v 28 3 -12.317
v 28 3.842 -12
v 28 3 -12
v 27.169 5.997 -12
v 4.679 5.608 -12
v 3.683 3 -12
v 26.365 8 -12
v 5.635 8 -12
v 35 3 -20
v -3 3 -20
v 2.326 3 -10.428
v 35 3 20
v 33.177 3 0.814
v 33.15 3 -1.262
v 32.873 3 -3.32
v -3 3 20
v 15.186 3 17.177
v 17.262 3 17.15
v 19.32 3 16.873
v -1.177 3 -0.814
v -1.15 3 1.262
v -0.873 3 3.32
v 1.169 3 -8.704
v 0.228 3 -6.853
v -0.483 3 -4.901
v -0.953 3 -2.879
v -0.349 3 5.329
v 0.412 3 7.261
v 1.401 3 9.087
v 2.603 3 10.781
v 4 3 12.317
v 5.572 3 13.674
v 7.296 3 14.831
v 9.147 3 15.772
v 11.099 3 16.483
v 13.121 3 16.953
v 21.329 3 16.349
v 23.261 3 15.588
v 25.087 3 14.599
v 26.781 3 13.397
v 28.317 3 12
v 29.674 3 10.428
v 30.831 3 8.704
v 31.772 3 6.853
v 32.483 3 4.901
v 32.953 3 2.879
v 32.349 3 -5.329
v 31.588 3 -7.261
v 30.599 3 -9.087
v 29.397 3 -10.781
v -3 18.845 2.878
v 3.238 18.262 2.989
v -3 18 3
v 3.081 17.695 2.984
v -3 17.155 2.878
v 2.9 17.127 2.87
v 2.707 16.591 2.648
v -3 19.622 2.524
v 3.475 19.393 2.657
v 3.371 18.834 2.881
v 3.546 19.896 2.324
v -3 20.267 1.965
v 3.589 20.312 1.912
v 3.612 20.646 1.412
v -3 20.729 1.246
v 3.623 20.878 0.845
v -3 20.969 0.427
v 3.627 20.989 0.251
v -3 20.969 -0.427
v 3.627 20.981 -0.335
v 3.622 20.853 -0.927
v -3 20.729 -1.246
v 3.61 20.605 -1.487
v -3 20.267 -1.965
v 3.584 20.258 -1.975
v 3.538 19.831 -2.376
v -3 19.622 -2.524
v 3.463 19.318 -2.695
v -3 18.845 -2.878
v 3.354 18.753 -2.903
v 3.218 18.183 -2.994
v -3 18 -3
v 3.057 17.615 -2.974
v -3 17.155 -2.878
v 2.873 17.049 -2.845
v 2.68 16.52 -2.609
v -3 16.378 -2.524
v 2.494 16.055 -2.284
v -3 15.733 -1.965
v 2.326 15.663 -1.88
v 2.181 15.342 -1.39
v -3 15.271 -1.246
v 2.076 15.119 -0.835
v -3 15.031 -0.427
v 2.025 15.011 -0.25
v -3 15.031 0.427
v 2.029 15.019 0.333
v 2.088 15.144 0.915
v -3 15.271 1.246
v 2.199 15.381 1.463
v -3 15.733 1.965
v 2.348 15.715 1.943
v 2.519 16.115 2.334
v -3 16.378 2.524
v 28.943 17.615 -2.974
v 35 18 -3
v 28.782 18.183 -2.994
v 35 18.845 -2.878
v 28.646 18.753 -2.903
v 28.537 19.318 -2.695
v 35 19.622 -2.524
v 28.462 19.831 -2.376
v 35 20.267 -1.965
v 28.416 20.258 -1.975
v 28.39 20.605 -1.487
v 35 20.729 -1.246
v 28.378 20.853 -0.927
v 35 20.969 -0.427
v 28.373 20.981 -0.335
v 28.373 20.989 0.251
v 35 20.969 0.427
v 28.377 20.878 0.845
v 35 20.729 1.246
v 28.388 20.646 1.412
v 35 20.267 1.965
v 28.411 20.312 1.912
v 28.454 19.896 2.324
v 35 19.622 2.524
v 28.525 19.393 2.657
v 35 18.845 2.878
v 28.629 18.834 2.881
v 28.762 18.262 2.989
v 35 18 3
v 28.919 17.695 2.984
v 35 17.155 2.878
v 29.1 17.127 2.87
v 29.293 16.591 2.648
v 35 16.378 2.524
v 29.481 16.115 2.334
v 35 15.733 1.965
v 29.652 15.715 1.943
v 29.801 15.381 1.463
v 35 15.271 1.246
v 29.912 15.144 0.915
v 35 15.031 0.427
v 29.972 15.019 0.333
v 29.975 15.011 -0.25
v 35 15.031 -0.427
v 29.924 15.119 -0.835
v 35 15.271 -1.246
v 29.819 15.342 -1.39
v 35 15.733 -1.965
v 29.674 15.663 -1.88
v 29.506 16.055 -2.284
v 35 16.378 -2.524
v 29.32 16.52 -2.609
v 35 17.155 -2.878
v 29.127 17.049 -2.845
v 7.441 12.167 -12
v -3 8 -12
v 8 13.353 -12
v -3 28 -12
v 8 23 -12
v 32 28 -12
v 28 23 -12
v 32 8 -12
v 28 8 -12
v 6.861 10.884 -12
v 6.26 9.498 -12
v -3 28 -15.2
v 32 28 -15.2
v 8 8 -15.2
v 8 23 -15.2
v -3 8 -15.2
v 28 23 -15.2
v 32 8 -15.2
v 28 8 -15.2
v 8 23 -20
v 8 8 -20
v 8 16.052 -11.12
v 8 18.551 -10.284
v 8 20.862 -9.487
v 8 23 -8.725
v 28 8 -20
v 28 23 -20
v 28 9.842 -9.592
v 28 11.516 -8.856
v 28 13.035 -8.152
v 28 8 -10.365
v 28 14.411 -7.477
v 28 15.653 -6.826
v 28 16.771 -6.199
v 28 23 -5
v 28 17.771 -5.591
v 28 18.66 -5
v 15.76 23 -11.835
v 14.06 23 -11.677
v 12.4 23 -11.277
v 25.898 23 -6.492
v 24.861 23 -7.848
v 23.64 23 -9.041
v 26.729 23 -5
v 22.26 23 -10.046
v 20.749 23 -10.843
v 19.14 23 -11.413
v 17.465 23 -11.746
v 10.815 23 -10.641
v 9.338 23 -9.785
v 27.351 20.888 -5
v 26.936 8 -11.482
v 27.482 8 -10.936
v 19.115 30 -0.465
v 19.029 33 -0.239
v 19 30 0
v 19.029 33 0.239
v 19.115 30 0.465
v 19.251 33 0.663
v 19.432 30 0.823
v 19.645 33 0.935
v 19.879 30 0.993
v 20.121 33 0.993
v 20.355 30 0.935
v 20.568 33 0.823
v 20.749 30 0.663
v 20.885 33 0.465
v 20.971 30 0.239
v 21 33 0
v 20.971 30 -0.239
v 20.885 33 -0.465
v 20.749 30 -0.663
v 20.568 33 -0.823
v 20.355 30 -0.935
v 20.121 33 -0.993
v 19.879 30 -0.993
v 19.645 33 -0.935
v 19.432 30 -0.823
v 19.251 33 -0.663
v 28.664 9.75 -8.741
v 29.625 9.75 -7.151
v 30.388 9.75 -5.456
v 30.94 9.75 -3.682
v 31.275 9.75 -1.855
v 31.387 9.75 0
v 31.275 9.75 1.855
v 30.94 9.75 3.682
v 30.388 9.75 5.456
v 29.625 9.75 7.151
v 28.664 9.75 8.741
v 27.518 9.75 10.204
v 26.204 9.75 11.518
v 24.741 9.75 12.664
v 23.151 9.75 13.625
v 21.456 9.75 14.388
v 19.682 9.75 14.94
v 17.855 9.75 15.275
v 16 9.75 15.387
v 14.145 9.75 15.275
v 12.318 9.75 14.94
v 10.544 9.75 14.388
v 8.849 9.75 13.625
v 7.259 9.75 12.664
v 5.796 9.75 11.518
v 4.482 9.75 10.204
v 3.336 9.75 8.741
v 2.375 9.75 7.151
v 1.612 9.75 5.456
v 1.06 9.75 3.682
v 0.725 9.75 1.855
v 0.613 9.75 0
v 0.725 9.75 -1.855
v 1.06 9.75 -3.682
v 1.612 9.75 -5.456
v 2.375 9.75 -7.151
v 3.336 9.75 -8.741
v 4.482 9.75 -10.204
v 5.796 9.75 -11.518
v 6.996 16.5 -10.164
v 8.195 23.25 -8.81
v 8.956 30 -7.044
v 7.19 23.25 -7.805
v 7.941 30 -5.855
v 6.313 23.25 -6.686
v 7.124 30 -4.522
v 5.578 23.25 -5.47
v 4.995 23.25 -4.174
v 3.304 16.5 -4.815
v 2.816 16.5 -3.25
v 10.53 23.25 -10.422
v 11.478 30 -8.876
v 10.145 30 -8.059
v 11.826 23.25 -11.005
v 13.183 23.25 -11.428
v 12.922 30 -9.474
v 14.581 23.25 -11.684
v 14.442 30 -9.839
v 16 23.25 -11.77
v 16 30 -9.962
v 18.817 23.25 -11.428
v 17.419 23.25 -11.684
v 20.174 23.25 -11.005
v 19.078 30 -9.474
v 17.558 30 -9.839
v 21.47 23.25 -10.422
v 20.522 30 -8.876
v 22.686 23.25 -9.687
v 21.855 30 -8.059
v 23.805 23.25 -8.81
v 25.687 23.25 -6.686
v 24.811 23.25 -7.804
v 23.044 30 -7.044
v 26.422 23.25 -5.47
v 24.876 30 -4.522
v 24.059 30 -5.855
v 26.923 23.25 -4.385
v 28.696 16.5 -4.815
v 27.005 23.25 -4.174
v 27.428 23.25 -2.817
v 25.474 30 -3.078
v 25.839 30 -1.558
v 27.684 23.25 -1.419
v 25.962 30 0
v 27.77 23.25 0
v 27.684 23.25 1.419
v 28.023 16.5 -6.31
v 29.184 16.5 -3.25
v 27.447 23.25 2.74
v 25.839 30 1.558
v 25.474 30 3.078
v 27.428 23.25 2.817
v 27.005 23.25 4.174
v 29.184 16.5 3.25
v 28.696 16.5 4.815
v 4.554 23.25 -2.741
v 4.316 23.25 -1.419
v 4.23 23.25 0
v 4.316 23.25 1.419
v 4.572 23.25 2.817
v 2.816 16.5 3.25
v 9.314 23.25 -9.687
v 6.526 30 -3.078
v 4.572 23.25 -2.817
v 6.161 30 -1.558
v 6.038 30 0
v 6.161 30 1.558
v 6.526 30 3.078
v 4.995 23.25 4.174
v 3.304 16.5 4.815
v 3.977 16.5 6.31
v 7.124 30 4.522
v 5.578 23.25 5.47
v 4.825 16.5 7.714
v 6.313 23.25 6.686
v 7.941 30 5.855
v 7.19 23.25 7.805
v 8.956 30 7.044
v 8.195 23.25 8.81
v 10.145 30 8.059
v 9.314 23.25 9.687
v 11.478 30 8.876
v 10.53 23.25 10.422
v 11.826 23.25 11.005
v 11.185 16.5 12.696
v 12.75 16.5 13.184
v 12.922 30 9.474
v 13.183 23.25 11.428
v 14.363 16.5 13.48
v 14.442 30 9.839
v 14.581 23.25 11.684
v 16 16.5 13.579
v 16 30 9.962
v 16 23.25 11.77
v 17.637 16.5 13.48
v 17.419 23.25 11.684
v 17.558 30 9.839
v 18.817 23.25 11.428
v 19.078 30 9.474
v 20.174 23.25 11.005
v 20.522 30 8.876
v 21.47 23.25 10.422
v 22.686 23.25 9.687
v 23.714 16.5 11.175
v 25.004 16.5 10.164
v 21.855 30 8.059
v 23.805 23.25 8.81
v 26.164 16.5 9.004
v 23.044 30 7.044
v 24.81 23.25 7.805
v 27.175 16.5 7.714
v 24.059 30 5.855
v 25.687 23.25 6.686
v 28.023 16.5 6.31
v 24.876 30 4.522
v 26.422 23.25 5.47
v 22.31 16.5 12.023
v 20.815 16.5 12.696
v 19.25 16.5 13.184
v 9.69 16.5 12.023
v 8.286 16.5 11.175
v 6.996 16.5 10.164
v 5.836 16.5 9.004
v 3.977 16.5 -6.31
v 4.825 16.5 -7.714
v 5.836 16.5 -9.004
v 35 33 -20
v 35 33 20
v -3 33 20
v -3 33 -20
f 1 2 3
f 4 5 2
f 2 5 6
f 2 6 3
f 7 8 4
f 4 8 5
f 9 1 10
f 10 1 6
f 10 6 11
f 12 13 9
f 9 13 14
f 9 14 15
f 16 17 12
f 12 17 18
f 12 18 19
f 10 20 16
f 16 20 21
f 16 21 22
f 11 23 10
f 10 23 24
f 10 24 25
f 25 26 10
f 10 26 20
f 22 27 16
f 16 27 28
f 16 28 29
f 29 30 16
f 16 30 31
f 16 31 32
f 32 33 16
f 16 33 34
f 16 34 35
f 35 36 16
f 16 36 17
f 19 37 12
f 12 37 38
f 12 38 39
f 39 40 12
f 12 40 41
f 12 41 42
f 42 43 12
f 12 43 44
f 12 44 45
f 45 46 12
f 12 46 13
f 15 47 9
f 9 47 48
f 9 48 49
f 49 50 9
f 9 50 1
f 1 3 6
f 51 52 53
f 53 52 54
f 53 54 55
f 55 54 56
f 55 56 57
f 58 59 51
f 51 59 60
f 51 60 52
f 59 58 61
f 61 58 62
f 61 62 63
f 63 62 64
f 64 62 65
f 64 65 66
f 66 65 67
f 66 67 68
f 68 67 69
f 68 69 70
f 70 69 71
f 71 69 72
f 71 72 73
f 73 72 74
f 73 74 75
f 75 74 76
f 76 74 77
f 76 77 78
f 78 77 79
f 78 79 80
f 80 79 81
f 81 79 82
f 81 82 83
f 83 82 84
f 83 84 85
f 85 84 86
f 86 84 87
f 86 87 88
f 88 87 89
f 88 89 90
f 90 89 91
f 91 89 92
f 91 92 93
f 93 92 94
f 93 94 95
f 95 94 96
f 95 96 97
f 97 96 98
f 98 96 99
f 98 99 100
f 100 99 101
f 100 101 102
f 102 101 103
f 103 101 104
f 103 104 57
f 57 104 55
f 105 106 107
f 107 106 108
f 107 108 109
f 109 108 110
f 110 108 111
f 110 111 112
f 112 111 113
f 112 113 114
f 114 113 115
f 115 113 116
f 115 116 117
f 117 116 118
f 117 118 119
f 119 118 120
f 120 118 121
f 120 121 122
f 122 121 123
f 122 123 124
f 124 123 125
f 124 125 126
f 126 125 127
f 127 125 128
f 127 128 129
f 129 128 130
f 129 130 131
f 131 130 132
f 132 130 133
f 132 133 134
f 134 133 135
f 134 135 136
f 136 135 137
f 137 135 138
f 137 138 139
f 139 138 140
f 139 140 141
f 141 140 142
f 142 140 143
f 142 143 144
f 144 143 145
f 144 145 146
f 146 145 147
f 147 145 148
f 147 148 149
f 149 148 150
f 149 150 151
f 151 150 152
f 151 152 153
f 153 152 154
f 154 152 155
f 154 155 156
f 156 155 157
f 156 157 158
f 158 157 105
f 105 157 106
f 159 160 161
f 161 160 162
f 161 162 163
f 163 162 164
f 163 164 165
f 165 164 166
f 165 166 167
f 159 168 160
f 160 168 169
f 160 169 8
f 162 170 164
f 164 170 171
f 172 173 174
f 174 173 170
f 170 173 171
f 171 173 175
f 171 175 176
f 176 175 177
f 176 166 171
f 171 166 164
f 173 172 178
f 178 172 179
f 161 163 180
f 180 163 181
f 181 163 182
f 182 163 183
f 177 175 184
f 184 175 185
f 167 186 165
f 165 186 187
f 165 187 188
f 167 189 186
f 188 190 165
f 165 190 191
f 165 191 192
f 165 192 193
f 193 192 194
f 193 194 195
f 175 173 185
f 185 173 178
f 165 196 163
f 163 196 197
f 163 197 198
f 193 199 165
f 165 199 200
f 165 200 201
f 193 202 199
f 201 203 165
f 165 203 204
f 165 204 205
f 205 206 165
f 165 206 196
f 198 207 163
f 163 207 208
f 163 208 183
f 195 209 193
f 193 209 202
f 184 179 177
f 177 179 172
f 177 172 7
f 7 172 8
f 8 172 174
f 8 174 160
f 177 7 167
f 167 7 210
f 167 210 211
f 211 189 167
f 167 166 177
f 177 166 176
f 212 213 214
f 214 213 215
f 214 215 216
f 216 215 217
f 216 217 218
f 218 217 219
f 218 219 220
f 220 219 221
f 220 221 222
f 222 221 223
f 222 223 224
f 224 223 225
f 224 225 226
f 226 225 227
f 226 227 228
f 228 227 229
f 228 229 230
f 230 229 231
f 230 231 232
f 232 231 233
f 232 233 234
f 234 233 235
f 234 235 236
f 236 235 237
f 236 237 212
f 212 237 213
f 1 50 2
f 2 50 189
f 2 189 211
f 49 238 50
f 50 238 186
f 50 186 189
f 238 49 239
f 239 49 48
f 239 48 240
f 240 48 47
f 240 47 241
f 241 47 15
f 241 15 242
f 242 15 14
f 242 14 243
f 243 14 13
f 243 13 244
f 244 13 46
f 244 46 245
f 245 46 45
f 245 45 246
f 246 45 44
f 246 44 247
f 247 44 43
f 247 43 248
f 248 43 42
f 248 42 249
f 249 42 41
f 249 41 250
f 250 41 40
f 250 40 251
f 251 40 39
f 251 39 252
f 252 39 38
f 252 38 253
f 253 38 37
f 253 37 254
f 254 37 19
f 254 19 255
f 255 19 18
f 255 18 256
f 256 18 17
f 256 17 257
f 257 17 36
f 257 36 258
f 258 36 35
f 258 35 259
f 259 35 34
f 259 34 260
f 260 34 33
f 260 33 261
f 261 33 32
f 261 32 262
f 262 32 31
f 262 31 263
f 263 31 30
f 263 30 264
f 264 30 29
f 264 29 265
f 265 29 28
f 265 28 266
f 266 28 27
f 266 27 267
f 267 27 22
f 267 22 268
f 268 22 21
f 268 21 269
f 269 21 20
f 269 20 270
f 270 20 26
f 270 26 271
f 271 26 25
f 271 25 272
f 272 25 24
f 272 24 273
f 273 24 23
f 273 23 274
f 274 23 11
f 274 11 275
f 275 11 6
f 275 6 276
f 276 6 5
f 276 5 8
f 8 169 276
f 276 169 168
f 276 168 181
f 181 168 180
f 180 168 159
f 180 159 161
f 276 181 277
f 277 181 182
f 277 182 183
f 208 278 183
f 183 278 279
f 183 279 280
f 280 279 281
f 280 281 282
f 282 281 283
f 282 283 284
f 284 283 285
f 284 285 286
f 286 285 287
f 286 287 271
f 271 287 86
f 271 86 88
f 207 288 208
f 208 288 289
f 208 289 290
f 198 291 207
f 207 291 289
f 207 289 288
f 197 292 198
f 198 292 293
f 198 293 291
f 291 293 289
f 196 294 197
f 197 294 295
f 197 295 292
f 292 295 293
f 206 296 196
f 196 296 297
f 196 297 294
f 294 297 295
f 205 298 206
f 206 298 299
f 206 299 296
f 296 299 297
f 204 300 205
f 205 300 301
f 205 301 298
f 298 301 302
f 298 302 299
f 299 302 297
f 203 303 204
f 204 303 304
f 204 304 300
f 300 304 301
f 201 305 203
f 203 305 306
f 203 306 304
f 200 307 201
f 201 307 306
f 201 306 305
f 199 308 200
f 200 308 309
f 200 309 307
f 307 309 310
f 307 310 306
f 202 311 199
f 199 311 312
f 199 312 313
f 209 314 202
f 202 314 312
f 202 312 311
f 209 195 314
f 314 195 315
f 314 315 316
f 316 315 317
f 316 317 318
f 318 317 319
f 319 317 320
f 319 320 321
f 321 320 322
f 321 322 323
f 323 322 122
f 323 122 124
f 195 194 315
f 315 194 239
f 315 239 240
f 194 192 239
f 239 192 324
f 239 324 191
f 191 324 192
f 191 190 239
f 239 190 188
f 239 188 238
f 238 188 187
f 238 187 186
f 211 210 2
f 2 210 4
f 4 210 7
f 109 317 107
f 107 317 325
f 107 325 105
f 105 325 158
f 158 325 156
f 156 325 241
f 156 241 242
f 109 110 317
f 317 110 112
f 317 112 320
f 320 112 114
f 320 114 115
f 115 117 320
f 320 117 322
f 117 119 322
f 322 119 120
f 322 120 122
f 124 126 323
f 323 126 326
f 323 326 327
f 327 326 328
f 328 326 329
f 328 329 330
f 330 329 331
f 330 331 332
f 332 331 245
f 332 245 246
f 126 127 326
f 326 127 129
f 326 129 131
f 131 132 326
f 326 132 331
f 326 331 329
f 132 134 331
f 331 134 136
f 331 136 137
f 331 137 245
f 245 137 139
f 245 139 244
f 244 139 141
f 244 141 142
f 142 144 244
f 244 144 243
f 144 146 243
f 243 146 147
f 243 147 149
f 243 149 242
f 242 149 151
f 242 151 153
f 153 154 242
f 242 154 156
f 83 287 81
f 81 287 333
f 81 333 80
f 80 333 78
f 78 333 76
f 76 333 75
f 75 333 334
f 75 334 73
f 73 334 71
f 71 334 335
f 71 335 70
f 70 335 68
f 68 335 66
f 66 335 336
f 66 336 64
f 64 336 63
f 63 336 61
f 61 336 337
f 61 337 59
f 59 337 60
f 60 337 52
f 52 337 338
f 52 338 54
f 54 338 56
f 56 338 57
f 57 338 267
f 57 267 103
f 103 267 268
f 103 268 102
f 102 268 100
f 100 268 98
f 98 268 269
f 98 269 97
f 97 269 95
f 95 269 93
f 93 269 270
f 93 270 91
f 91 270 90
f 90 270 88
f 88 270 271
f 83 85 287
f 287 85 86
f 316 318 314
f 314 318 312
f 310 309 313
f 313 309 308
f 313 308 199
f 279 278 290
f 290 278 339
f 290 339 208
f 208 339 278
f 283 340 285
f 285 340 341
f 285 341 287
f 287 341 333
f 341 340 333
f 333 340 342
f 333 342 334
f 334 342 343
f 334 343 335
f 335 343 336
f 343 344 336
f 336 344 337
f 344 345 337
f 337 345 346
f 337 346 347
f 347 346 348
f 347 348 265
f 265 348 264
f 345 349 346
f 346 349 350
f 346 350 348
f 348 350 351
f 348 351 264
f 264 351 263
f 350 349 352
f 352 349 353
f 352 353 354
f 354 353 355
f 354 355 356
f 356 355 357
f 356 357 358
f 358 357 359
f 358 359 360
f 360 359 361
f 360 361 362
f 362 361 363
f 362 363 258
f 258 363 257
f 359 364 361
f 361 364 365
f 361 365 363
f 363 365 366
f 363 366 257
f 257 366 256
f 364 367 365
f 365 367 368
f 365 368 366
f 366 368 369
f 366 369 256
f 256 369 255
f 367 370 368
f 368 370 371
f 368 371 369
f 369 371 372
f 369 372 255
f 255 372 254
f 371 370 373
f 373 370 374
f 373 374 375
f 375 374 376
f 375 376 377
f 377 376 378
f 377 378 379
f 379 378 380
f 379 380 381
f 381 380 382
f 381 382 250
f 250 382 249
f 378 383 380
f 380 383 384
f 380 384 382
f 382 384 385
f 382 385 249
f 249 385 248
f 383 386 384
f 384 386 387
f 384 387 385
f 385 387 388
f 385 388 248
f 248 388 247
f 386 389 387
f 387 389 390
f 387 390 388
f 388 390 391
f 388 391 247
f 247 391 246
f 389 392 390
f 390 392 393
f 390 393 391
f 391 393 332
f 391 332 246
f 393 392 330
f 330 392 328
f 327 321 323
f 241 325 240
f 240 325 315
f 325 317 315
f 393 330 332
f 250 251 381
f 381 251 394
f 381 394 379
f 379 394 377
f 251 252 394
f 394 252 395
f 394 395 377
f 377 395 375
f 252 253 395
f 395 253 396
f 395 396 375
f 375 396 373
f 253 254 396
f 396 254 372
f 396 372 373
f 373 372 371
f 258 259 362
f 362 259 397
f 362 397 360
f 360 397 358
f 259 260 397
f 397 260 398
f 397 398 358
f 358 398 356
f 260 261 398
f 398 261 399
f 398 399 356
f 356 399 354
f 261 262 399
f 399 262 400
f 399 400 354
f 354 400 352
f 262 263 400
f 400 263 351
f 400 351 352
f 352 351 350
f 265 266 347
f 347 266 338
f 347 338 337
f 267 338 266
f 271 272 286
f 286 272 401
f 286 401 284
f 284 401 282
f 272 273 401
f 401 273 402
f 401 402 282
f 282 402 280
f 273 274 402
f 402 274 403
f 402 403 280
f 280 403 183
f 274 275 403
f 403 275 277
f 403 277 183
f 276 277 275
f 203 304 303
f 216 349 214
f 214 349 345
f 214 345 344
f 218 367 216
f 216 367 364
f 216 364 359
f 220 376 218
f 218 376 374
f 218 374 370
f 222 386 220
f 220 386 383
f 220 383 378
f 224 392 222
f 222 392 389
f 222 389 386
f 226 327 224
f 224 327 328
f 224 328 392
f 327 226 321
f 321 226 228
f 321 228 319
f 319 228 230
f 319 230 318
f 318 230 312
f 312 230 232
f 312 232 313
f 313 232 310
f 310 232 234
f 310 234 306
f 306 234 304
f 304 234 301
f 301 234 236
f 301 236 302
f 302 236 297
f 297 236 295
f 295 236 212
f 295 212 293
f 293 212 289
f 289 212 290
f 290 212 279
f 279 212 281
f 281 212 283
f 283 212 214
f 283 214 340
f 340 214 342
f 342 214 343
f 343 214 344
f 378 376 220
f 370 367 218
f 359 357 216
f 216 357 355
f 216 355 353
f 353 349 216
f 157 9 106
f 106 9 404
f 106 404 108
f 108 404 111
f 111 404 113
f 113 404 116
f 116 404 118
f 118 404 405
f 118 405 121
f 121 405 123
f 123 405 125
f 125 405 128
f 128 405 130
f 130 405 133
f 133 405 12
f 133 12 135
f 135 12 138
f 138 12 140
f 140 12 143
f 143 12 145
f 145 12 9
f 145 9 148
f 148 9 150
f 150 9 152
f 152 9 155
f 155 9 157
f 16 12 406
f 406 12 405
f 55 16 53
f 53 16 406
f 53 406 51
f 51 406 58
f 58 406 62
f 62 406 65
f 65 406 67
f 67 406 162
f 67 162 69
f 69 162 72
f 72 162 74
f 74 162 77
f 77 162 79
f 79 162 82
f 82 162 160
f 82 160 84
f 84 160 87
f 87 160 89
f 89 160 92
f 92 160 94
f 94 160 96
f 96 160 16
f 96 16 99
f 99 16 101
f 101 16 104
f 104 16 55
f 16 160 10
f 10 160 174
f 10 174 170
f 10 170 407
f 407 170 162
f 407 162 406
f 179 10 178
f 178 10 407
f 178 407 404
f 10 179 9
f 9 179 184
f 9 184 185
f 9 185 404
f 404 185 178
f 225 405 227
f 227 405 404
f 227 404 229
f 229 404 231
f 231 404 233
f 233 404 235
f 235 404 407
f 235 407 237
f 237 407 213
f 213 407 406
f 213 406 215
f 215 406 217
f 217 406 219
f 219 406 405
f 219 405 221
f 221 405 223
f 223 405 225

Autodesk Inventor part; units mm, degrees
ref_plane "YZ Plane" through (0, 0, 0) normal (1, 0, 0) x (0, 1, 0)
ref_plane "XZ Plane" through (0, 0, 0) normal (0, 1, 0) x (-1, 0, 0)
ref_plane "XY Plane" through (0, 0, 0) normal (0, 0, 1) x (1, 0, 0)
ref_plane "Work Plane13" through (0, 3, 0) normal (0, 1, 0) x (1, 0, 0)
sketch "Sketch45" plane through (0, 3, 0) normal (0, 1, 0) x (1, 0, 0)
  line L0 (35, -20) -> (-3, -20)
  line L1 (-3, -20) -> (-3, 20)
  line L2 (-3, 20) -> (35, 20)
  line L3 (35, 20) -> (35, -20)
  point P0 (0, 0)
  dimension "d142" = 38
  dimension "d143" = 40
extrude "Extrusion34" add sketch "Sketch45" along normal blind 30
sketch "Sketch46" plane through (0, 33, 0) normal (0, 1, 0) x (1, 0, 0)
  point P0 (0, 0)
ref_plane "Work Plane11" through (0, 0, 0) normal (0, -1, 0) x (1, 0, 0)
sketch "Sketch47" plane through (0, 0, 0) normal (0, -1, 0) x (1, 0, 0)
  circle A0 centre (16, 0) radius 18
  point P0 (0, 0)
  dimension "d146" = 36
extrude "Extrusion35" cut sketch "Sketch47" against normal blind 30 draft -15
sketch "Sketch48" plane through (0, 33, 0) normal (0, 1, 0) x (1, 0, 0)
  point P0 (0, 0)
sketch "Sketch49" plane through (0, 33, 0) normal (0, 1, 0) x (1, 0, 0)
  circle A0 centre (20, 0) radius 1
  point P0 (0, 0)
  dimension "d149" = 2
extrude "Extrusion36" cut sketch "Sketch49" against normal through all
ref_plane "Work Plane7" through (35, 3, -20) normal (0, 0, -1) x (-1, 0, 0)
sketch "Sketch58" plane through (35, 3, -20) normal (0, 0, -1) x (-1, 0, 0)
  line L0 (7, 20) -> (27, 20)
  line L1 (27, 20) -> (27, 5)
  line L2 (27, 5) -> (7, 5)
  line L3 (7, 5) -> (7, 20)
  point P0 (35, -3)
  dimension "d156" = 20
  dimension "d157" = 15
extrude "Extrusion38" cut sketch "Sketch58" against normal blind 15
ref_plane "Work Plane4" through (-3, 3, -20) normal (-1, 0, 0) x (0, 0, 1)
sketch "Sketch59" plane through (-3, 3, -20) normal (-1, 0, 0) x (0, 0, 1)
  line L0 (4.8, 25) -> (8, 25)
  line L1 (8, 25) -> (8, 5)
  line L2 (8, 5) -> (4.8, 5)
  line L3 (4.8, 5) -> (4.8, 25)
  point P0 (20, -3)
  dimension "d160" = 3.2
  dimension "d161" = 20
extrude "Extrusion39" cut sketch "Sketch59" against normal blind 35
ref_plane "Work Plane1" through (0, 3, 0) normal (0, 1, 0) x (1, 0, 0)
ref_plane "Work Plane6" through (0, 23, 0) normal (0, 1, 0) x (1, 0, 0)
sketch "Sketch62" plane through (-3, 3, -20) normal (-1, 0, 0) x (0, 0, 1)
  circle A0 centre (20, 15) radius 3
  point P0 (20, -3)
  dimension "d172" = 6
extrude "Extrusion42" cut sketch "Sketch62" against normal through all
sketch "Sketch65" plane through (0, 3, 0) normal (0, -1, 0) x (1, 0, 0)
  line L0 (-3, -12) -> (32, -12) projected
  line L1 (28, -20) -> (28, -15.2) projected
  line L2 (3.5815, -12) -> (28, -12)
  line L3 (28, -12) -> (28, -17.2375)
  line L4 (28, -17.2375) -> (3.5815, -17.2375)
  line L5 (3.5815, -17.2375) -> (3.5815, -12)
  point P0 (0, 0)
extrude "Extrusion44" add sketch "Sketch65" against normal blind 5
properties part number "liquid port_only_v06"
